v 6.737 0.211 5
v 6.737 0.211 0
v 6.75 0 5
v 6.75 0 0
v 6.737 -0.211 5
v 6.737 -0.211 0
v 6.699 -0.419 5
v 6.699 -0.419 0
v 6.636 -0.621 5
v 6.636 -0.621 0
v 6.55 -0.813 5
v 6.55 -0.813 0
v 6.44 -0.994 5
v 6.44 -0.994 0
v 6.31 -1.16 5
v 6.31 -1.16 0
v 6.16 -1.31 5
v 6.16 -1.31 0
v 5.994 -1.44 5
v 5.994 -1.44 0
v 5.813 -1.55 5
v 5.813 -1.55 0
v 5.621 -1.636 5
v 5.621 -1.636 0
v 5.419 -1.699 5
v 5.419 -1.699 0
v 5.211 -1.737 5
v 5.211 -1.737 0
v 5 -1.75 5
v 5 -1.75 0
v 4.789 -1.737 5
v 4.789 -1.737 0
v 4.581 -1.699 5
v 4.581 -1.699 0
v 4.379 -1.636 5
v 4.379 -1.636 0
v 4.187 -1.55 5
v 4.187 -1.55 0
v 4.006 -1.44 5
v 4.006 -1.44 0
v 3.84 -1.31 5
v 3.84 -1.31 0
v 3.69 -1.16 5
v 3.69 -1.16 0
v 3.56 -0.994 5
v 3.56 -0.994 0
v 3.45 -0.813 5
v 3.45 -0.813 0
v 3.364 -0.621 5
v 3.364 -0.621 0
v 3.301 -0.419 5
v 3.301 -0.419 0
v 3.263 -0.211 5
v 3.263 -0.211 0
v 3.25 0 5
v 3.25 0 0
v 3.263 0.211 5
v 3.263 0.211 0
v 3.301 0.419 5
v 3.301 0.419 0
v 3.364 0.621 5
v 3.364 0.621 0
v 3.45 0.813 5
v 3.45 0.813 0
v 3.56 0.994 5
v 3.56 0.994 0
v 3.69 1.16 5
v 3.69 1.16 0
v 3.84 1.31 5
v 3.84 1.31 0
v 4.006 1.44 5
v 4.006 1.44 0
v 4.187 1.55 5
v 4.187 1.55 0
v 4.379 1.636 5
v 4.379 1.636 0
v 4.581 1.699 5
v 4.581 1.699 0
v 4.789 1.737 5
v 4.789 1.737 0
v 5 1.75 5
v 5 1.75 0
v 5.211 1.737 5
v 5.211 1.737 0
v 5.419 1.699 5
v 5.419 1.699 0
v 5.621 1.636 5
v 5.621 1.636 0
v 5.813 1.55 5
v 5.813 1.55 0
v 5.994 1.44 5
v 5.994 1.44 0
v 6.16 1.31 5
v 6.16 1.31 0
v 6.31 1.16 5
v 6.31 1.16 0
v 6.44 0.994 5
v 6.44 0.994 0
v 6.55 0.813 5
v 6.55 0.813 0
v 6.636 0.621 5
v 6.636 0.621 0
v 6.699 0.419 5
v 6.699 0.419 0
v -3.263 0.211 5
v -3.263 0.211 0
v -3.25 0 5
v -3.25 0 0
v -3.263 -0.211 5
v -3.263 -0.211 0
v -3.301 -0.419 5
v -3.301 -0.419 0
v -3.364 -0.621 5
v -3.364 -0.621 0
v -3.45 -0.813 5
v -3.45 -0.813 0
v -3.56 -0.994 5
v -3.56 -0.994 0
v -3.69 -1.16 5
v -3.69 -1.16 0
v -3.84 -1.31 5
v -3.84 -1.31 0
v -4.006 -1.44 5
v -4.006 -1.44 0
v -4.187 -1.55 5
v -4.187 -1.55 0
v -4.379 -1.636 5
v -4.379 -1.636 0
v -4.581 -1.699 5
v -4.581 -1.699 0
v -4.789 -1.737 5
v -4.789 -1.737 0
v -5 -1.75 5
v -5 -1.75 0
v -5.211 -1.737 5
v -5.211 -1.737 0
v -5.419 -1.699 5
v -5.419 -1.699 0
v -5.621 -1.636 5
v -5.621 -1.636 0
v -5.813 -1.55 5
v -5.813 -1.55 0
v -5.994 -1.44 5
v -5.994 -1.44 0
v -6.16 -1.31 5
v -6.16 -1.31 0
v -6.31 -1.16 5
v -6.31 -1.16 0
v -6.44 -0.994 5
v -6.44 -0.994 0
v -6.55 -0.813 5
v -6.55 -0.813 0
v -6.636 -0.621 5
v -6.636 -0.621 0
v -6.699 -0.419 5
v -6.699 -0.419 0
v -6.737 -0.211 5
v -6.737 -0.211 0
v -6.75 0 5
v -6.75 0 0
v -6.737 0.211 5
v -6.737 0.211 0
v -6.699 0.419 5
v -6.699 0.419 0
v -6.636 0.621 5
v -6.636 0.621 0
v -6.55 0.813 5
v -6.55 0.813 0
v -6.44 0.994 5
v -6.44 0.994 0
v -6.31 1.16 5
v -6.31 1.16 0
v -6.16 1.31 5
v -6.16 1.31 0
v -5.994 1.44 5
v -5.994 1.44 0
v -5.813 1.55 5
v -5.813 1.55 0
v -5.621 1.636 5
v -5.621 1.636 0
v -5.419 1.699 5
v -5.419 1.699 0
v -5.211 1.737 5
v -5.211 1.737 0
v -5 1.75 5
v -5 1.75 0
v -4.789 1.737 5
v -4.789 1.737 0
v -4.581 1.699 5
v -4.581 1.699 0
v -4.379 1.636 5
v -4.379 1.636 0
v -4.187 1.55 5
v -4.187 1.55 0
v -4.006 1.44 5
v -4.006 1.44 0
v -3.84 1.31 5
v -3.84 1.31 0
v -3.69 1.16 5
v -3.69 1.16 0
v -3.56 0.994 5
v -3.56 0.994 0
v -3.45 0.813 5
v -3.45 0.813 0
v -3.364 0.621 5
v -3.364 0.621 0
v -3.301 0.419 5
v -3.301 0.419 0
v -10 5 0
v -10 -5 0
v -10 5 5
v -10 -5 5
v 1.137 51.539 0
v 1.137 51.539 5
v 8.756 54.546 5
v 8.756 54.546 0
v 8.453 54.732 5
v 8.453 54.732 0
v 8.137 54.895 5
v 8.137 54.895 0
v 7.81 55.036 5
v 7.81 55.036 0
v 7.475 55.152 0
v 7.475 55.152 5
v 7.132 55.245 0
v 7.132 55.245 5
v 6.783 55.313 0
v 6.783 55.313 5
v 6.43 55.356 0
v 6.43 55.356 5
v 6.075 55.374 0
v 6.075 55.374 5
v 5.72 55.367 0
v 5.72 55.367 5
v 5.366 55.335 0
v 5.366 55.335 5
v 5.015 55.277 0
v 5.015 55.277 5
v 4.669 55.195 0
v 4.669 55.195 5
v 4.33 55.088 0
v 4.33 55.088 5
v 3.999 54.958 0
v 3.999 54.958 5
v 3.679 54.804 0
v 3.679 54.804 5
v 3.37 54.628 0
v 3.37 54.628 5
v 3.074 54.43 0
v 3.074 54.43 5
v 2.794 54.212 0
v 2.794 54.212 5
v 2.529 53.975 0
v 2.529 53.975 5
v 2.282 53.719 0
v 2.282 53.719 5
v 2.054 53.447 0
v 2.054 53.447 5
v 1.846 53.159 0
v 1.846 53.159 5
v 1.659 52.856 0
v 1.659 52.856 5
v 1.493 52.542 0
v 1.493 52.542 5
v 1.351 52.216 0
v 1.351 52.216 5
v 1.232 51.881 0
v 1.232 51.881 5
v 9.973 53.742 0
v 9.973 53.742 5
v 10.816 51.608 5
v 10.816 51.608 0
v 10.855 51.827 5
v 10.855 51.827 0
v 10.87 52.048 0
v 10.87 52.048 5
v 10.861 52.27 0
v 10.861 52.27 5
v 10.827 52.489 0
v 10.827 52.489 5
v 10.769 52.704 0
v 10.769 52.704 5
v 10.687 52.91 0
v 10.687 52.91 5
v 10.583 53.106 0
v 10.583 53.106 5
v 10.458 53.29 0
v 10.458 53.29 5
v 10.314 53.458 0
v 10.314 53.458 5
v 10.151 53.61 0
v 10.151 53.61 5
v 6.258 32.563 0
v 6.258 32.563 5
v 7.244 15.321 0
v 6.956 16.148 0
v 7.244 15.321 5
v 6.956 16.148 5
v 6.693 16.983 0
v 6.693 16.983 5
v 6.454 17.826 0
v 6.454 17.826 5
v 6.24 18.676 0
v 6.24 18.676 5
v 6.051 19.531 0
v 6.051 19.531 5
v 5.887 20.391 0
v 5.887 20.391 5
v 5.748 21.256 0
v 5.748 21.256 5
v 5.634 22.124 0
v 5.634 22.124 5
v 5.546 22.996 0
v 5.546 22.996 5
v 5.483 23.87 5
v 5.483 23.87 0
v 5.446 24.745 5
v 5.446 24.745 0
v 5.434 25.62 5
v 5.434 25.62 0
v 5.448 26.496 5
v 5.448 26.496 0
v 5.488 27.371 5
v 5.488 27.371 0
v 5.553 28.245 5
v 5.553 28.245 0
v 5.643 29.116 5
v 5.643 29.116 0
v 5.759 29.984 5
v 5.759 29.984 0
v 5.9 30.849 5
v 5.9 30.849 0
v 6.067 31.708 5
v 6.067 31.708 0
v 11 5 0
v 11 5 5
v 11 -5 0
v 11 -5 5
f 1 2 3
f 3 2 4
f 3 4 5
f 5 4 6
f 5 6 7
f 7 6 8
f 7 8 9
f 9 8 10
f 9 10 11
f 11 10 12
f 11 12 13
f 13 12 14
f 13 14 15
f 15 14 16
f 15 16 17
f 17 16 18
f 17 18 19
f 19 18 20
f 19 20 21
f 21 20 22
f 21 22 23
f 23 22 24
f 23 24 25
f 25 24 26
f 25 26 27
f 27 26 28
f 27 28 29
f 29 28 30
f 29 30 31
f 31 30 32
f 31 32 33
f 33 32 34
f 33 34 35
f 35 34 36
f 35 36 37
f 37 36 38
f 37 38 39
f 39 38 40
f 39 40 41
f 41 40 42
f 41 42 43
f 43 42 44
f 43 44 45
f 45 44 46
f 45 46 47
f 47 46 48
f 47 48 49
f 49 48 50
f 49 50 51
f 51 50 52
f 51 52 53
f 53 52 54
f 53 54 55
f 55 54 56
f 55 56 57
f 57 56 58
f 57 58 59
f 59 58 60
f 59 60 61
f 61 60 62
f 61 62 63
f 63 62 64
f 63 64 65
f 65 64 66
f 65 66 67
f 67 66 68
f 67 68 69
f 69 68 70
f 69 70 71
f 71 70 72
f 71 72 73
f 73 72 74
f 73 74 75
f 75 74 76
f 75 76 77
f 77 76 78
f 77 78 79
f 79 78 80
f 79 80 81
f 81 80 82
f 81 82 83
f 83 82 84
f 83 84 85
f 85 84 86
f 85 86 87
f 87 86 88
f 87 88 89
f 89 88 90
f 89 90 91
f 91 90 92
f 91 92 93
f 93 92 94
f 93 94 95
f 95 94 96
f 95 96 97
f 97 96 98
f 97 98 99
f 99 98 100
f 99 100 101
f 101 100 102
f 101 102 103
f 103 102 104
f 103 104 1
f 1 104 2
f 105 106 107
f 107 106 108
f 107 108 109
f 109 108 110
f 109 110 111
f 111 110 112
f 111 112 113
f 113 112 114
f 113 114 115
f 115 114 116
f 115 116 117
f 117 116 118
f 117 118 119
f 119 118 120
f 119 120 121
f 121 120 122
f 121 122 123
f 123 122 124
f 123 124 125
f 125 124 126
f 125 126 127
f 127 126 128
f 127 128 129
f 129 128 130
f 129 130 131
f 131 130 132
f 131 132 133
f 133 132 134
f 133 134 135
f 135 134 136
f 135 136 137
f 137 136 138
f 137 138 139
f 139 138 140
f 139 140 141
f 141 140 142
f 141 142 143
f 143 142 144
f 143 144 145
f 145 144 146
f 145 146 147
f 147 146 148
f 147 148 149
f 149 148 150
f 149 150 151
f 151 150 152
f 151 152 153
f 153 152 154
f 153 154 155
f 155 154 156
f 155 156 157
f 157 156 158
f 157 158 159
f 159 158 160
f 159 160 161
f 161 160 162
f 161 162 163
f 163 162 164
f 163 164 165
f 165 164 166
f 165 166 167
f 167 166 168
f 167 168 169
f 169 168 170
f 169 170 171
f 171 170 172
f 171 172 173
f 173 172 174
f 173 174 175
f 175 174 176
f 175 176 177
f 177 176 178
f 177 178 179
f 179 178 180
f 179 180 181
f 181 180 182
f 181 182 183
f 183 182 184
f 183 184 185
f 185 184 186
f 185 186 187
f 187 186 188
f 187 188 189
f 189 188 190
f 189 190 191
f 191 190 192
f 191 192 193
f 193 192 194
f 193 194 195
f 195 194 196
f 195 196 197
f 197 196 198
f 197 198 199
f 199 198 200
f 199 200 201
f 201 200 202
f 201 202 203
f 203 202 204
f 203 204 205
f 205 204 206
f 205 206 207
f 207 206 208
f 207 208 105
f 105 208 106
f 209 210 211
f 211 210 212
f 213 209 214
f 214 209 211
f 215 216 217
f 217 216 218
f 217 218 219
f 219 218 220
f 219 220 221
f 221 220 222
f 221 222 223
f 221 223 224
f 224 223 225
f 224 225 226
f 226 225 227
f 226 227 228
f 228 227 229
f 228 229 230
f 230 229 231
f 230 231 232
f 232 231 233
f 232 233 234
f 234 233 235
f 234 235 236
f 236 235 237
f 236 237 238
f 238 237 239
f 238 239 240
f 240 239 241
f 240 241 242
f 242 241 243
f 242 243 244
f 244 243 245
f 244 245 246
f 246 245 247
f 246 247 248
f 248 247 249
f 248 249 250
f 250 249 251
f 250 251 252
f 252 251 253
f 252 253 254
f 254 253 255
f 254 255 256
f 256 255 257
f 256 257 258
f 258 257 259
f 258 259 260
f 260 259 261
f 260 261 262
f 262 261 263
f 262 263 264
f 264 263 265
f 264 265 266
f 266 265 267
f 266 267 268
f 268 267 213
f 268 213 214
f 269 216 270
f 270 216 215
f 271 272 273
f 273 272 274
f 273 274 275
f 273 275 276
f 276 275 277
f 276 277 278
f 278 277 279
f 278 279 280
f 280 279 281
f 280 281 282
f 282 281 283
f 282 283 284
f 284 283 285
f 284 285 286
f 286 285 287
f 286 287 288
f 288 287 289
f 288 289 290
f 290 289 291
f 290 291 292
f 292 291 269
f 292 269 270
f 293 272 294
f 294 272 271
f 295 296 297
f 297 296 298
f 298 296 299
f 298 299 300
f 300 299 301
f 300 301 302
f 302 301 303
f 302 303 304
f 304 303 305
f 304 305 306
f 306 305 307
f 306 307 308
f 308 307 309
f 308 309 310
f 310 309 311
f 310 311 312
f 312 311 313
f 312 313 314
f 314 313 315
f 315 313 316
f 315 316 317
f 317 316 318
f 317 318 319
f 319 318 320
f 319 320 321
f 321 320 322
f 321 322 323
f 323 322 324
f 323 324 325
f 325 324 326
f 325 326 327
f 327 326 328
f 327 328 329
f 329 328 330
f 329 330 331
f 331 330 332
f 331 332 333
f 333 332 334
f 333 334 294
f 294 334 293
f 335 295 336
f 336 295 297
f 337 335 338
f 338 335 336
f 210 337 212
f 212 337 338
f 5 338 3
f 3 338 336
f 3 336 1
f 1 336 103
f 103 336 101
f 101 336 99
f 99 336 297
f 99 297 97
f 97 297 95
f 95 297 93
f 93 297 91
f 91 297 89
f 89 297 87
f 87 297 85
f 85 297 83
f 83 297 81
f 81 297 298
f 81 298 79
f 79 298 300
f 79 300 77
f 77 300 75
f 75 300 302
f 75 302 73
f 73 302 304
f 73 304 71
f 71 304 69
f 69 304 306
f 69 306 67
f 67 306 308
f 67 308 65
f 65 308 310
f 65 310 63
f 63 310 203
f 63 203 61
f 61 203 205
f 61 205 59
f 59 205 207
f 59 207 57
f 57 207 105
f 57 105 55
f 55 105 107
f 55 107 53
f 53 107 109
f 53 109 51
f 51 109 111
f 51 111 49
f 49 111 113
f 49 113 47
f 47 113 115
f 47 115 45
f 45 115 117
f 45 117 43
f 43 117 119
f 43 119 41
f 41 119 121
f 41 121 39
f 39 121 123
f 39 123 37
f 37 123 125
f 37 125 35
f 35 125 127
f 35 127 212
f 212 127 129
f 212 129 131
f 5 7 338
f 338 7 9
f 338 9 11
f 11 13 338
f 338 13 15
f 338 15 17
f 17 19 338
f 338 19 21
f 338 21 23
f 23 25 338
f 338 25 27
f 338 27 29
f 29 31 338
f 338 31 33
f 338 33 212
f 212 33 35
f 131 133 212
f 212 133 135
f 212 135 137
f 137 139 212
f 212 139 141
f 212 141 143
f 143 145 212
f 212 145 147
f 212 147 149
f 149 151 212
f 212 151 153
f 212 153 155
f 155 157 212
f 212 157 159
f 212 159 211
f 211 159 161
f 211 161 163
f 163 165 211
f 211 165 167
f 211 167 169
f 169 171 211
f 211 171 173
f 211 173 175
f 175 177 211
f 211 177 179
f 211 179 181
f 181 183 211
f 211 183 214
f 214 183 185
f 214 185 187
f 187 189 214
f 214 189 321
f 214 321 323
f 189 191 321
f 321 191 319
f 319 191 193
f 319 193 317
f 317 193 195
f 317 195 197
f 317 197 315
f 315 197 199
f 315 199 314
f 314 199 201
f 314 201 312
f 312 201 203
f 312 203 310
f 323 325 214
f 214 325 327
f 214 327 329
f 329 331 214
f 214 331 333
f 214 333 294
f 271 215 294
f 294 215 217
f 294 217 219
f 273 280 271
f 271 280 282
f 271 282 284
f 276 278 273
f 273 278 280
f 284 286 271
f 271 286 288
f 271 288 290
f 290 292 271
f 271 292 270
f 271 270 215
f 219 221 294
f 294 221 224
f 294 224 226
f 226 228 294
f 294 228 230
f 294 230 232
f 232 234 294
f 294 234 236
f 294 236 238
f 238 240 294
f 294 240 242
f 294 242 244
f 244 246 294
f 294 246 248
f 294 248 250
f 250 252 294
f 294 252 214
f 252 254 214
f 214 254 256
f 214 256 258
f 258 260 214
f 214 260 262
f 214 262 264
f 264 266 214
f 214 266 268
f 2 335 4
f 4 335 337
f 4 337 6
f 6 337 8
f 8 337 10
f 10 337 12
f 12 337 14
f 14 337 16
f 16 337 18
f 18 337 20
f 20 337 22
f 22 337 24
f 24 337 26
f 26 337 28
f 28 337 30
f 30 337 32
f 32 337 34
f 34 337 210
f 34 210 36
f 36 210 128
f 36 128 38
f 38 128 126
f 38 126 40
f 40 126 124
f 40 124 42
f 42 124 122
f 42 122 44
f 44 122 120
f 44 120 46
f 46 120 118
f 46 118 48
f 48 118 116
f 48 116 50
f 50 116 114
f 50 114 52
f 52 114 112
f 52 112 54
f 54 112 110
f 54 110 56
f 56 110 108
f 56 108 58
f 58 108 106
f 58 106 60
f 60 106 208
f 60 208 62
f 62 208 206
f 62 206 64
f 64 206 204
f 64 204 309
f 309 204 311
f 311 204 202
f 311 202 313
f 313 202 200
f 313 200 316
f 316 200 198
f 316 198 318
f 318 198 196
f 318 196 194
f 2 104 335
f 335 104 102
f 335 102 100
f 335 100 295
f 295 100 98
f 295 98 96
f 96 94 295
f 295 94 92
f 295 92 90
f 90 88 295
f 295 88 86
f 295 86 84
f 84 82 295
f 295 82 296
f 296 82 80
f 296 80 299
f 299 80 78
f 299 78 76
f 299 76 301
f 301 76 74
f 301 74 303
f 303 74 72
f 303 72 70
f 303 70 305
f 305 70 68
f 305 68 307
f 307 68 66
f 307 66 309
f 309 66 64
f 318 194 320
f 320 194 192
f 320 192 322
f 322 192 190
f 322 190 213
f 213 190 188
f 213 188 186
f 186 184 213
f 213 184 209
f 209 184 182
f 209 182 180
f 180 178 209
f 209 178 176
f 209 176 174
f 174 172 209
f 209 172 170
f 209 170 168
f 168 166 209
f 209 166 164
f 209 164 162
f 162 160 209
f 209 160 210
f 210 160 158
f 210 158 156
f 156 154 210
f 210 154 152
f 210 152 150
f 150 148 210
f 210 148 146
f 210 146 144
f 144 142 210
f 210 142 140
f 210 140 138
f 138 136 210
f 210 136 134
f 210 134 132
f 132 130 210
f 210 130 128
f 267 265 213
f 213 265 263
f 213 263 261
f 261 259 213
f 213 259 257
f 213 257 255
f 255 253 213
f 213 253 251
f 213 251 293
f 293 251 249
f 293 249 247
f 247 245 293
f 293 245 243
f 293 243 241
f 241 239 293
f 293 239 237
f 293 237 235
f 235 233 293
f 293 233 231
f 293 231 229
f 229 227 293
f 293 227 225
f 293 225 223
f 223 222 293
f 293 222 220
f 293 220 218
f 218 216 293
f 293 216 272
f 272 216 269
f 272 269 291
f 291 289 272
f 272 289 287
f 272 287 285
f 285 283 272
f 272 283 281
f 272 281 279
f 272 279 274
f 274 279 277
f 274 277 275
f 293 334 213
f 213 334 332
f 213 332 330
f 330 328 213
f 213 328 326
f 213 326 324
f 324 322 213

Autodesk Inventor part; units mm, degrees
ref_plane "YZ Plane" through (0, 0, 0) normal (1, 0, 0) x (0, 1, 0)
ref_plane "XZ Plane" through (0, 0, 0) normal (0, 1, 0) x (-1, 0, 0)
ref_plane "XY Plane" through (0, 0, 0) normal (0, 0, 1) x (1, 0, 0)
sketch "Sketch1" plane through (0, 0, 0) normal (0, 0, 1) x (1, 0, 0)
  line L0 (0, 0) -> (5, 0)
  line L1 (5, 0) -> (-5, 0)
  circle A0 centre (-5, 0) radius 1.75
  circle A1 centre (5, 0) radius 1.75
  line L2 (0, 0) -> (0, -5)
  line L3 (0, -5) -> (11, -5)
  line L4 (11, -5) -> (11, 5)
  line L5 (0, -5) -> (-10, -5)
  line L6 (-10, -5) -> (-10, 5)
  line L7 (11, 5) -> (7.2436, 15.3207)
  line L8 (11, 5) -> (21.9831, 5) construction
  line L9 (6.2581, 32.5632) -> (10.8155, 51.6081)
  line L10 (9.9731, 53.7422) -> (8.756, 54.5465)
  line L11 (1.1367, 51.5387) -> (-10, 5)
  arc A2 (6.2581, 32.5632) -> (7.2436, 15.3207) centre (35.4343, 25.5813) ccw
  arc A3 (10.8155, 51.6081) -> (9.9731, 53.7422) centre (8.8705, 52.0736) ccw
  arc A4 (8.756, 54.5465) -> (1.1367, 51.5387) centre (5.9994, 50.375) ccw
  point P0 (4.1596, 23.7939)
  point P1 (11.1415, 52.9701)
  point P2 (2.7985, 58.4833)
  dimension "d0" = 5
  dimension "d1" = 10
  dimension "d2" = 3.5
  dimension "d3" = 3.5
  dimension "d4" = 5
  dimension "d5" = 11
  dimension "d6" = 10
  dimension "d7" = 10
  dimension "d8" = 10
  dimension "d9" = 20
  dimension "d10" = 110
  dimension "d11" = 30
  dimension "d12" = 10
  dimension "d13" = 110
  dimension "d14" = 30
  dimension "d15" = 2
  dimension "d16" = 5
extrude "Extrusion1" add sketch "Sketch1" along normal blind 5
properties part number "gripper"
